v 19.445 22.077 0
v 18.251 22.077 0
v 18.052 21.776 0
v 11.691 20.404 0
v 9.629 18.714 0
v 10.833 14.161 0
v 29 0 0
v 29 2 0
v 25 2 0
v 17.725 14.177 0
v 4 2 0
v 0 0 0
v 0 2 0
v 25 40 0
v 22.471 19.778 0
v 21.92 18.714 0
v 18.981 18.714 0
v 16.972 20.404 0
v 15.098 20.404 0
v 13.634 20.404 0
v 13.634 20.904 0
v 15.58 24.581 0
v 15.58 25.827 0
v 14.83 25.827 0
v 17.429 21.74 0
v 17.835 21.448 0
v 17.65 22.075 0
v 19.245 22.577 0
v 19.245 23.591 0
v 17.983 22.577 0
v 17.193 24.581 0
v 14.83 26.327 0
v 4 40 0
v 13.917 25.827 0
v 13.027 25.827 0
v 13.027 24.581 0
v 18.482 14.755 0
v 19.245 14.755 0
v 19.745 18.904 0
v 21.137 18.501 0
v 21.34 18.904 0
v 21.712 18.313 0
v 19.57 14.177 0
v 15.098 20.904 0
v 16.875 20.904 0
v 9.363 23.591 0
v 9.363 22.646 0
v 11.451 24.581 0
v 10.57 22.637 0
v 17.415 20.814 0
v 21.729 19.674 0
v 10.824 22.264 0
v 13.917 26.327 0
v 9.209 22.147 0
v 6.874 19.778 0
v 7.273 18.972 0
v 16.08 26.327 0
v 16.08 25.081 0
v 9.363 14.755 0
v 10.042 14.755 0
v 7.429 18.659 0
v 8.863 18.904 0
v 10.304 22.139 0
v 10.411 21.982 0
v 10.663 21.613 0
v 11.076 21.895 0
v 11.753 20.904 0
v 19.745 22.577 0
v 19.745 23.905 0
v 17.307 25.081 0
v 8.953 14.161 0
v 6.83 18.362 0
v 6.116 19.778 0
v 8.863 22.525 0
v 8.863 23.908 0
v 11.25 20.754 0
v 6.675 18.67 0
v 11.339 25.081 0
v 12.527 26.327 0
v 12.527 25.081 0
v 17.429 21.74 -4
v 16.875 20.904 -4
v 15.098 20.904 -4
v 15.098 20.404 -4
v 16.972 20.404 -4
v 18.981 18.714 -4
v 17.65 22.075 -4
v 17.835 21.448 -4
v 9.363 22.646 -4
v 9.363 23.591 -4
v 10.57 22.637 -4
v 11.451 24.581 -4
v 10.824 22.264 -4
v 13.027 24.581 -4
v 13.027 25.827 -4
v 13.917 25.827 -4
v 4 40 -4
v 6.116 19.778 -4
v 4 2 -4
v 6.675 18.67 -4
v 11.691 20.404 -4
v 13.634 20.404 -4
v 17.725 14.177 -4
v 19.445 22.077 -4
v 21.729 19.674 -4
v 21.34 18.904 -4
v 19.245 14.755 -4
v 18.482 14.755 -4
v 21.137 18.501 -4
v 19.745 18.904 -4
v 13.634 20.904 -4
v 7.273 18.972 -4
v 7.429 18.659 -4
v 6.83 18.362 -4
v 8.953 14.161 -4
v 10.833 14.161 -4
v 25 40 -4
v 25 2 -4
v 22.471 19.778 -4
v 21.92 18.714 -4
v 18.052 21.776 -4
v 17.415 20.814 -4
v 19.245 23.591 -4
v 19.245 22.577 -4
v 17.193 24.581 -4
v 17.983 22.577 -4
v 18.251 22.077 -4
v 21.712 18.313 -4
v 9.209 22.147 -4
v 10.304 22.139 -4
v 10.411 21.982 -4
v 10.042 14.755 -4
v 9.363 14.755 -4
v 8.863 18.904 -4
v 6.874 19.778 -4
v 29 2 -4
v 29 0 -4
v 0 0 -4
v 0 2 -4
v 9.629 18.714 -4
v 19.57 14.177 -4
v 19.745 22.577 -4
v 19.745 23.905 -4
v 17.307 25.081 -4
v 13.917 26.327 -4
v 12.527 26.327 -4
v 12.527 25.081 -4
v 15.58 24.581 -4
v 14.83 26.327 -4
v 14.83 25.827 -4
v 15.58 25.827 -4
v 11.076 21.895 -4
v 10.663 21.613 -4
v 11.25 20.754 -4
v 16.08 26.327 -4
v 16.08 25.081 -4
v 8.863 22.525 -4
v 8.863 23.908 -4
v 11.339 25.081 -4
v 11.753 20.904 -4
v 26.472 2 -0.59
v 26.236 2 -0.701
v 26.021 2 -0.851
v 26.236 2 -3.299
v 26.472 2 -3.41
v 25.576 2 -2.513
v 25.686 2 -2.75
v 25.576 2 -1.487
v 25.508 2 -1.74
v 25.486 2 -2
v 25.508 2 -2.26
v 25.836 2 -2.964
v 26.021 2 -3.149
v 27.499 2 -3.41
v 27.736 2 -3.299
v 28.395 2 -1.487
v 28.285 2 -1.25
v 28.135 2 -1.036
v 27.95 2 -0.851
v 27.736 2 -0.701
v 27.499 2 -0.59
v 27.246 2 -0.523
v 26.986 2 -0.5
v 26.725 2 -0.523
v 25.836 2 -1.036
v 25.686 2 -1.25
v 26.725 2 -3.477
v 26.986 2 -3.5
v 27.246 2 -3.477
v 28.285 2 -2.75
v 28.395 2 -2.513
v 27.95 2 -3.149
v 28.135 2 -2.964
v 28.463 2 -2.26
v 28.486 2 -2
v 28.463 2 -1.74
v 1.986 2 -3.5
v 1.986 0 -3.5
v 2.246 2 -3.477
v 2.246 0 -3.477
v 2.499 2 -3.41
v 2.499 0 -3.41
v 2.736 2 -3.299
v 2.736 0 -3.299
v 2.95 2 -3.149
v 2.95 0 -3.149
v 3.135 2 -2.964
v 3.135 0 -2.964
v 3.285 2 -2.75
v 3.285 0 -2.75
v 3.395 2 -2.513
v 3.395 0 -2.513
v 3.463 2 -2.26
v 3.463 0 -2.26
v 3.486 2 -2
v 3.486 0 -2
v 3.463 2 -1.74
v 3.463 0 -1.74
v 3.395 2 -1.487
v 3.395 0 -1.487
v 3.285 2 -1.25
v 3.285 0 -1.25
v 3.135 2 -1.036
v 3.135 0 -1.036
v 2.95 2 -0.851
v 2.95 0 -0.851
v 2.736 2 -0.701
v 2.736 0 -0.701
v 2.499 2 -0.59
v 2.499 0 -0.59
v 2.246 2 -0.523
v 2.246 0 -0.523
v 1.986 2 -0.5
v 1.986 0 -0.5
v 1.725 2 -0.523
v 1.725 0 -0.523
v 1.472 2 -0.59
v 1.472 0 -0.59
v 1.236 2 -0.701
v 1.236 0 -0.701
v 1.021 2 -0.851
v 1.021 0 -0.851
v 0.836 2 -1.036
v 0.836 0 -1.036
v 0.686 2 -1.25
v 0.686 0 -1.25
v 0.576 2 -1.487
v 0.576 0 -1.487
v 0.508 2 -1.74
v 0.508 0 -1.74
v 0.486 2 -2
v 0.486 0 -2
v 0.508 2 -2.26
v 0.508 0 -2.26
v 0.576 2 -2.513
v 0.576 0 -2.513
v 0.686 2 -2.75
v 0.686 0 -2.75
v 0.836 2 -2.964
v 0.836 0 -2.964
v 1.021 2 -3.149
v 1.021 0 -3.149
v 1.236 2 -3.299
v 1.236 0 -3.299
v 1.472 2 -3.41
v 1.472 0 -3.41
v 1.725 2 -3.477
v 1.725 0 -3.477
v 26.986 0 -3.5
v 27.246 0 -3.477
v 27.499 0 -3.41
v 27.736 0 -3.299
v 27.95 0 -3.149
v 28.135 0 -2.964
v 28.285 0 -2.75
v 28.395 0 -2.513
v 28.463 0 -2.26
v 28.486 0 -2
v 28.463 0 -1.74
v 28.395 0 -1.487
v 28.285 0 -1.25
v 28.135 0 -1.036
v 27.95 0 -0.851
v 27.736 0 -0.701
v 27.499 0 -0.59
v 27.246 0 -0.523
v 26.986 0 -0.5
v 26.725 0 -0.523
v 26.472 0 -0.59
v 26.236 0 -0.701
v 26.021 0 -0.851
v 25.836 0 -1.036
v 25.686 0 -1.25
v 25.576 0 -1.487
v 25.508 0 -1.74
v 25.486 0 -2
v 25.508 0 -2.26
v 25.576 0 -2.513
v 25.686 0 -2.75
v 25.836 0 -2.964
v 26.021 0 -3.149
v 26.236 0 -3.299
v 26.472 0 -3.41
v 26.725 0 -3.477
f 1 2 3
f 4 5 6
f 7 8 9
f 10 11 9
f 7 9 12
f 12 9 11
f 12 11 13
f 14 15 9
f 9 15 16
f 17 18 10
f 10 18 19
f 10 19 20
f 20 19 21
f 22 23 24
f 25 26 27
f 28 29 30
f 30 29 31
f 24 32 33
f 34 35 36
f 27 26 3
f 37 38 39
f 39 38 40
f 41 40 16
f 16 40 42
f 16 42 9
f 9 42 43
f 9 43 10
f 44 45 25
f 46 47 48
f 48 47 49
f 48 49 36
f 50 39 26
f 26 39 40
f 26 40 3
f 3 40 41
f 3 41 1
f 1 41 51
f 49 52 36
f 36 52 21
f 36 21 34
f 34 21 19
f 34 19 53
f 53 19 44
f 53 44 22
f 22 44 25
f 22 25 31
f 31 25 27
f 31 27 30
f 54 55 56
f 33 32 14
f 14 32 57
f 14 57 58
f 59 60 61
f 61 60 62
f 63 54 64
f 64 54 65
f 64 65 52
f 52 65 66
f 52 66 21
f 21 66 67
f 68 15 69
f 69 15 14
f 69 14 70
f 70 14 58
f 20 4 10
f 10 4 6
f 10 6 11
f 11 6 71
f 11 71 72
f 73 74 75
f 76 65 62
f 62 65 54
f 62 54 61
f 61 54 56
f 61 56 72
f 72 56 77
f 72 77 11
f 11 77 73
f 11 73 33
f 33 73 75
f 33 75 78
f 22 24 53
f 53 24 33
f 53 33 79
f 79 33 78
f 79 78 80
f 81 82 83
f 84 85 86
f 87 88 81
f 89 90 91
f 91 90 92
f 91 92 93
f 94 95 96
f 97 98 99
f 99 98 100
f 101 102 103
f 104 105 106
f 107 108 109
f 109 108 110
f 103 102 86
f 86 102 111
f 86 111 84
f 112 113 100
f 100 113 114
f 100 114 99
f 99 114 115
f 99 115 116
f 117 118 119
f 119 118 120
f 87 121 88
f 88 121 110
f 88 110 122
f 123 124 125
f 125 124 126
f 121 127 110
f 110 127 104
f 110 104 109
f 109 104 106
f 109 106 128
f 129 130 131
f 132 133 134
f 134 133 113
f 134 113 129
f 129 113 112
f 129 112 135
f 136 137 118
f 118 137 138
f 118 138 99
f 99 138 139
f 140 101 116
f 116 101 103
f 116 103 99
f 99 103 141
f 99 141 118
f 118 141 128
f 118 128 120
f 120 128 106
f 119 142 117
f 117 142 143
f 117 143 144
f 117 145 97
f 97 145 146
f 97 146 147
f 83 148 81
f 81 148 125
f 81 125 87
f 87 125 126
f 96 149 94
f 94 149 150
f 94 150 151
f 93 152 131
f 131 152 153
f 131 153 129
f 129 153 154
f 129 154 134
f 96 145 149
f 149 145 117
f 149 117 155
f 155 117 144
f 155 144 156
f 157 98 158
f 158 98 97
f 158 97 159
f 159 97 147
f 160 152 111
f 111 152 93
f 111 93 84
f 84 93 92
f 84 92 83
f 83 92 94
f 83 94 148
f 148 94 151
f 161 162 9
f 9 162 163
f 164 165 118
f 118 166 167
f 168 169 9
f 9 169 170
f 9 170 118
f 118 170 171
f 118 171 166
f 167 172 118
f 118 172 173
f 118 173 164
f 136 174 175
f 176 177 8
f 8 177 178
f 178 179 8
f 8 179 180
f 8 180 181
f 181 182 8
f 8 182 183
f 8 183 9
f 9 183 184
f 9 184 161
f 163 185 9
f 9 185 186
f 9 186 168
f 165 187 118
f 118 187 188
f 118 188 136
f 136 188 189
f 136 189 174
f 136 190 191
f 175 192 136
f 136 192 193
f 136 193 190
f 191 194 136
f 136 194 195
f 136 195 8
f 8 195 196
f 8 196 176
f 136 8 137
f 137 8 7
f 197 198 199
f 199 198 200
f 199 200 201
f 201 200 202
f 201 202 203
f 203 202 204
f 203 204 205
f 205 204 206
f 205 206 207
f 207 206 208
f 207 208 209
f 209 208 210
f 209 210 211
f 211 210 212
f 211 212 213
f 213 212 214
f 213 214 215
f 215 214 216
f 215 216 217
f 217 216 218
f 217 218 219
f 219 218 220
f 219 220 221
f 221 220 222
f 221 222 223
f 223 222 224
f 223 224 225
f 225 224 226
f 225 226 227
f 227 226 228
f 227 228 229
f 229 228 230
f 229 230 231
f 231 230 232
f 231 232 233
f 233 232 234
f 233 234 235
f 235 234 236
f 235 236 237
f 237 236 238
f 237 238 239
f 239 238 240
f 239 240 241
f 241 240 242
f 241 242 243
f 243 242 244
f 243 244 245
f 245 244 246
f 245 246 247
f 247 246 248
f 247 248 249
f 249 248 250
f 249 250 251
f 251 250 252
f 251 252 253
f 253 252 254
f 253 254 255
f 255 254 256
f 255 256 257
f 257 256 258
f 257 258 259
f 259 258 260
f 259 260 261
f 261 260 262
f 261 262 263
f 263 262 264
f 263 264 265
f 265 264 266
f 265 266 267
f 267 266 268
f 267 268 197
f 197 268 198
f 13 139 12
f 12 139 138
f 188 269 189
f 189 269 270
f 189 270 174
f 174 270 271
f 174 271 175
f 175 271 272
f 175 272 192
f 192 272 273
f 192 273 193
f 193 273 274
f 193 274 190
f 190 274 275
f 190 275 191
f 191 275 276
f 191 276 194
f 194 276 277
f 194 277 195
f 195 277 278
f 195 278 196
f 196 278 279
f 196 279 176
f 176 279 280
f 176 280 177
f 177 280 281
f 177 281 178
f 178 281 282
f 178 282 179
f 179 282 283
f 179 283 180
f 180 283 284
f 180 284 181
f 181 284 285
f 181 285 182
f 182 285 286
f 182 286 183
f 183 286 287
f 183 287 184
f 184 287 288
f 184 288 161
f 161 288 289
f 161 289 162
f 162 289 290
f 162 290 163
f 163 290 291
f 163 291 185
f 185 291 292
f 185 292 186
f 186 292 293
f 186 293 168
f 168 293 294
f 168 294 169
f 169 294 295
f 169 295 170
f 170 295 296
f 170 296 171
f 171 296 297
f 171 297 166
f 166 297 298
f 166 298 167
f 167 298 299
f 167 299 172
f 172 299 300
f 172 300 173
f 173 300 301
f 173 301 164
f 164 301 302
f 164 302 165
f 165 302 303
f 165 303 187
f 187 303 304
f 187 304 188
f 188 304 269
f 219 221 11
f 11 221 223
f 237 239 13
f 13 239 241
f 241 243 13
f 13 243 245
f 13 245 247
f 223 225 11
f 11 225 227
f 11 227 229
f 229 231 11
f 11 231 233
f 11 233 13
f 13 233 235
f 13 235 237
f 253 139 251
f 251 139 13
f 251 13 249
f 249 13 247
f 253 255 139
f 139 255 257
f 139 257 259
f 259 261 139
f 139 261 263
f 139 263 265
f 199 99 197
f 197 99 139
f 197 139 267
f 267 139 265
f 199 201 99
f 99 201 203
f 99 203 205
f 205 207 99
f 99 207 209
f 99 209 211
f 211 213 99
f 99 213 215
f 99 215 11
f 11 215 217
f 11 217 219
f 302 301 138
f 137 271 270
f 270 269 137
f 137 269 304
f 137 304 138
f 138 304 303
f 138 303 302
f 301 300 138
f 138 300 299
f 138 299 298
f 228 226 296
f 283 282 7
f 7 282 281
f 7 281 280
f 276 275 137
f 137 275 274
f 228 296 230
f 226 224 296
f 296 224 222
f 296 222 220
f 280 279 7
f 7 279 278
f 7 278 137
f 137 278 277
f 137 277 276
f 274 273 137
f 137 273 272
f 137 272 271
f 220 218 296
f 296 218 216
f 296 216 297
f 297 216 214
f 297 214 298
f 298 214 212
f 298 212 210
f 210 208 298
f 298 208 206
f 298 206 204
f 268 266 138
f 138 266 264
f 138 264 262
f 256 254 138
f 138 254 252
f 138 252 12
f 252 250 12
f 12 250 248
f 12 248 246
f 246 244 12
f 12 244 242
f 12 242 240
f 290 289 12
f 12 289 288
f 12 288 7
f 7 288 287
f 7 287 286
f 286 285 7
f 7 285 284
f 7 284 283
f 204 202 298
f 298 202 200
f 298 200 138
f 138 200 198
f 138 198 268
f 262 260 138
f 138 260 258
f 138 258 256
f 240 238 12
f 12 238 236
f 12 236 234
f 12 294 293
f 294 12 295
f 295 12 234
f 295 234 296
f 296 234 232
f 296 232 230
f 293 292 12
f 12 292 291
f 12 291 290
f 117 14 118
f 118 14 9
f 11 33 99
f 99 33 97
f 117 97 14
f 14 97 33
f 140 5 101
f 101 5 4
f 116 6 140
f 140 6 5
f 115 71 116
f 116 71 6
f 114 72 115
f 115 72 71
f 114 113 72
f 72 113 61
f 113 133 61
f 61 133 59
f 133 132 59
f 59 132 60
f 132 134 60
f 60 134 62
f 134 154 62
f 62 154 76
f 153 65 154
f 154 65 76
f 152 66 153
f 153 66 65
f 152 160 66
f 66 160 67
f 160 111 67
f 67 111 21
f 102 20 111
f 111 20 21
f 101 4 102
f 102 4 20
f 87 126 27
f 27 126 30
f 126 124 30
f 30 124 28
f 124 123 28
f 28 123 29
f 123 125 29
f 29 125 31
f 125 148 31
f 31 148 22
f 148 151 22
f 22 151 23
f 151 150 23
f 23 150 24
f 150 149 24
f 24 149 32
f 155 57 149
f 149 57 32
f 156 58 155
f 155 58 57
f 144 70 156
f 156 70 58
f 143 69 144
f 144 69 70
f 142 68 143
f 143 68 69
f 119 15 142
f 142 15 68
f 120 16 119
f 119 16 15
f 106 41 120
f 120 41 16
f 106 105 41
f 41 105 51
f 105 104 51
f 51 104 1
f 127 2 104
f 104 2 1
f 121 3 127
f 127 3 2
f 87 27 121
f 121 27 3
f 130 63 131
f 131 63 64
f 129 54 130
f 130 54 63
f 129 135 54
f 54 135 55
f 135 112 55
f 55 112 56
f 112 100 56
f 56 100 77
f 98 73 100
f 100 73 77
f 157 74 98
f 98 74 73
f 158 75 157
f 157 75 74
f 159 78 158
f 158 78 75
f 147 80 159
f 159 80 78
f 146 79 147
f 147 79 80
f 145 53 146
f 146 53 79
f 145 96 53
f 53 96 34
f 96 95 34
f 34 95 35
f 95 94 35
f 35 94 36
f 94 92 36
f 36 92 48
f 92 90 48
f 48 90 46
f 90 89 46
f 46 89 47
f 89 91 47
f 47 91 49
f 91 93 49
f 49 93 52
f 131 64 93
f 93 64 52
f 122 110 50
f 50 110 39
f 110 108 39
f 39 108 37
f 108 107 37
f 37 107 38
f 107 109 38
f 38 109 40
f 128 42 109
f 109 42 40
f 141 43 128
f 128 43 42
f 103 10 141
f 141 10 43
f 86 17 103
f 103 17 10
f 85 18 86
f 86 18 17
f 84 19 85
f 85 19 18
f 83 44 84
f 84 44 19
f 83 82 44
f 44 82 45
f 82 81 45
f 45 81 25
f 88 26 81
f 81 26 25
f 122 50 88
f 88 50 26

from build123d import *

# Parameters (mm, degrees)
SKETCH1_W               = 29
SKETCH1_H               = 4
SKETCH1_R               = 1.5
BOSS_EXTRUDE1_DEPTH     = 2
SKETCH1_3_W             = 21
SKETCH1_3_H             = 4
BOSS_EXTRUDE2_DEPTH     = 40
CUT_EXTRUDE1_DEPTH      = 50.568134926
CUT_EXTRUDE1_DEPTH_BACK = 50.568134926


with BuildPart() as part:
    # Sketch1 → Boss-Extrude1 (new body)
    with BuildSketch(Plane(origin=(0, 0, 0), x_dir=(1, 0, 0), z_dir=(0, 1, 0))):
        with Locations((14.5, 2)):
            Rectangle(SKETCH1_W, SKETCH1_H)
        with Locations((1.985523286, 2)):
            Circle(SKETCH1_R, mode=Mode.SUBTRACT)
        with Locations((26.985523286, 2)):
            Circle(SKETCH1_R, mode=Mode.SUBTRACT)
    extrude(amount=BOSS_EXTRUDE1_DEPTH)

    # Sketch1<3> → Boss-Extrude2 (add)
    with BuildSketch(Plane(origin=(0, 0, 0), x_dir=(1, 0, 0), z_dir=(0, 1, 0))):
        with Locations((14.5, 2)):
            Rectangle(SKETCH1_3_W, SKETCH1_3_H)
    extrude(amount=BOSS_EXTRUDE2_DEPTH)

    # Sketch4 → Cut-Extrude1 (cut, two sides: drawn at the far end of the back side and taken through both)
    with BuildSketch(Plane.XY.offset(-CUT_EXTRUDE1_DEPTH_BACK)):
        Polygon((14.829784235, 25.826592436), (15.580318165, 25.826592436), (15.580318165, 24.58059841), (17.192781023, 24.58059841), (19.245006478, 23.591132565), (19.245006478, 22.577235465), (17.982823566, 22.577235465), (17.650133225, 22.074575332), (18.051844448, 21.775593359), (18.251489115, 22.077235465), (19.444594864, 22.077235465), (21.728896307, 19.673543908), (21.340089812, 18.903582673), (21.919881884, 18.713869931), (22.47100439, 19.777672119), (19.745006478, 22.577235465), (19.745006478, 23.905142602), (17.307024063, 25.08059841), (16.080318165, 25.08059841), (16.080318165, 26.326592436), (14.829784235, 26.326592436), align=None)
        Polygon((13.027251973, 25.826592436), (13.917191226, 25.826592436), (13.917191226, 26.326592436), (12.527251973, 26.326592436), (12.527251973, 25.08059841), (11.339002885, 25.08059841), (8.862563659, 23.907548251), (8.862563659, 22.524621534), (6.115614244, 19.777672119), (6.67527171, 18.669699411), (7.27342553, 18.971837946), (6.874226368, 19.777672119), (9.208768581, 22.14696034), (10.304123515, 22.13906148), (10.411216966, 21.982171939), (10.824179507, 22.264061881), (10.56950065, 22.637160784), (9.362563659, 22.645864288), (9.362563659, 23.591132565), (11.451435998, 24.58059841), (13.027251973, 24.58059841), align=None)
        Polygon((17.834770022, 21.447616721), (17.428999134, 21.740464967), (16.875174702, 20.903694469), (15.097594277, 20.903694469), (15.097594277, 20.403694469), (16.97171728, 20.403694469), (18.980777312, 18.713869931), (17.724730843, 14.177305917), (19.569630531, 14.177305917), (21.712038769, 18.312681525), (21.136756911, 18.500918487), (19.245006478, 14.754647487), (18.482173443, 14.754647487), (19.745006478, 18.903582673), (17.415142863, 20.813604196), align=None)
        Polygon((11.752771943, 20.903694469), (11.07591062, 21.895281359), (10.662948079, 21.613391417), (11.249689352, 20.753828409), (8.862563659, 18.903582673), (10.041604324, 14.754647487), (9.362563659, 14.754647487), (7.428562862, 18.658673552), (6.830494871, 18.362398898), (8.952818152, 14.16076412), (10.833448813, 14.16076412), (9.629185319, 18.713869931), (11.691280342, 20.403694469), (13.634288417, 20.403694469), (13.634288417, 20.903694469), align=None)
    extrude(amount=CUT_EXTRUDE1_DEPTH + CUT_EXTRUDE1_DEPTH_BACK, mode=Mode.SUBTRACT)


solid = part.part
